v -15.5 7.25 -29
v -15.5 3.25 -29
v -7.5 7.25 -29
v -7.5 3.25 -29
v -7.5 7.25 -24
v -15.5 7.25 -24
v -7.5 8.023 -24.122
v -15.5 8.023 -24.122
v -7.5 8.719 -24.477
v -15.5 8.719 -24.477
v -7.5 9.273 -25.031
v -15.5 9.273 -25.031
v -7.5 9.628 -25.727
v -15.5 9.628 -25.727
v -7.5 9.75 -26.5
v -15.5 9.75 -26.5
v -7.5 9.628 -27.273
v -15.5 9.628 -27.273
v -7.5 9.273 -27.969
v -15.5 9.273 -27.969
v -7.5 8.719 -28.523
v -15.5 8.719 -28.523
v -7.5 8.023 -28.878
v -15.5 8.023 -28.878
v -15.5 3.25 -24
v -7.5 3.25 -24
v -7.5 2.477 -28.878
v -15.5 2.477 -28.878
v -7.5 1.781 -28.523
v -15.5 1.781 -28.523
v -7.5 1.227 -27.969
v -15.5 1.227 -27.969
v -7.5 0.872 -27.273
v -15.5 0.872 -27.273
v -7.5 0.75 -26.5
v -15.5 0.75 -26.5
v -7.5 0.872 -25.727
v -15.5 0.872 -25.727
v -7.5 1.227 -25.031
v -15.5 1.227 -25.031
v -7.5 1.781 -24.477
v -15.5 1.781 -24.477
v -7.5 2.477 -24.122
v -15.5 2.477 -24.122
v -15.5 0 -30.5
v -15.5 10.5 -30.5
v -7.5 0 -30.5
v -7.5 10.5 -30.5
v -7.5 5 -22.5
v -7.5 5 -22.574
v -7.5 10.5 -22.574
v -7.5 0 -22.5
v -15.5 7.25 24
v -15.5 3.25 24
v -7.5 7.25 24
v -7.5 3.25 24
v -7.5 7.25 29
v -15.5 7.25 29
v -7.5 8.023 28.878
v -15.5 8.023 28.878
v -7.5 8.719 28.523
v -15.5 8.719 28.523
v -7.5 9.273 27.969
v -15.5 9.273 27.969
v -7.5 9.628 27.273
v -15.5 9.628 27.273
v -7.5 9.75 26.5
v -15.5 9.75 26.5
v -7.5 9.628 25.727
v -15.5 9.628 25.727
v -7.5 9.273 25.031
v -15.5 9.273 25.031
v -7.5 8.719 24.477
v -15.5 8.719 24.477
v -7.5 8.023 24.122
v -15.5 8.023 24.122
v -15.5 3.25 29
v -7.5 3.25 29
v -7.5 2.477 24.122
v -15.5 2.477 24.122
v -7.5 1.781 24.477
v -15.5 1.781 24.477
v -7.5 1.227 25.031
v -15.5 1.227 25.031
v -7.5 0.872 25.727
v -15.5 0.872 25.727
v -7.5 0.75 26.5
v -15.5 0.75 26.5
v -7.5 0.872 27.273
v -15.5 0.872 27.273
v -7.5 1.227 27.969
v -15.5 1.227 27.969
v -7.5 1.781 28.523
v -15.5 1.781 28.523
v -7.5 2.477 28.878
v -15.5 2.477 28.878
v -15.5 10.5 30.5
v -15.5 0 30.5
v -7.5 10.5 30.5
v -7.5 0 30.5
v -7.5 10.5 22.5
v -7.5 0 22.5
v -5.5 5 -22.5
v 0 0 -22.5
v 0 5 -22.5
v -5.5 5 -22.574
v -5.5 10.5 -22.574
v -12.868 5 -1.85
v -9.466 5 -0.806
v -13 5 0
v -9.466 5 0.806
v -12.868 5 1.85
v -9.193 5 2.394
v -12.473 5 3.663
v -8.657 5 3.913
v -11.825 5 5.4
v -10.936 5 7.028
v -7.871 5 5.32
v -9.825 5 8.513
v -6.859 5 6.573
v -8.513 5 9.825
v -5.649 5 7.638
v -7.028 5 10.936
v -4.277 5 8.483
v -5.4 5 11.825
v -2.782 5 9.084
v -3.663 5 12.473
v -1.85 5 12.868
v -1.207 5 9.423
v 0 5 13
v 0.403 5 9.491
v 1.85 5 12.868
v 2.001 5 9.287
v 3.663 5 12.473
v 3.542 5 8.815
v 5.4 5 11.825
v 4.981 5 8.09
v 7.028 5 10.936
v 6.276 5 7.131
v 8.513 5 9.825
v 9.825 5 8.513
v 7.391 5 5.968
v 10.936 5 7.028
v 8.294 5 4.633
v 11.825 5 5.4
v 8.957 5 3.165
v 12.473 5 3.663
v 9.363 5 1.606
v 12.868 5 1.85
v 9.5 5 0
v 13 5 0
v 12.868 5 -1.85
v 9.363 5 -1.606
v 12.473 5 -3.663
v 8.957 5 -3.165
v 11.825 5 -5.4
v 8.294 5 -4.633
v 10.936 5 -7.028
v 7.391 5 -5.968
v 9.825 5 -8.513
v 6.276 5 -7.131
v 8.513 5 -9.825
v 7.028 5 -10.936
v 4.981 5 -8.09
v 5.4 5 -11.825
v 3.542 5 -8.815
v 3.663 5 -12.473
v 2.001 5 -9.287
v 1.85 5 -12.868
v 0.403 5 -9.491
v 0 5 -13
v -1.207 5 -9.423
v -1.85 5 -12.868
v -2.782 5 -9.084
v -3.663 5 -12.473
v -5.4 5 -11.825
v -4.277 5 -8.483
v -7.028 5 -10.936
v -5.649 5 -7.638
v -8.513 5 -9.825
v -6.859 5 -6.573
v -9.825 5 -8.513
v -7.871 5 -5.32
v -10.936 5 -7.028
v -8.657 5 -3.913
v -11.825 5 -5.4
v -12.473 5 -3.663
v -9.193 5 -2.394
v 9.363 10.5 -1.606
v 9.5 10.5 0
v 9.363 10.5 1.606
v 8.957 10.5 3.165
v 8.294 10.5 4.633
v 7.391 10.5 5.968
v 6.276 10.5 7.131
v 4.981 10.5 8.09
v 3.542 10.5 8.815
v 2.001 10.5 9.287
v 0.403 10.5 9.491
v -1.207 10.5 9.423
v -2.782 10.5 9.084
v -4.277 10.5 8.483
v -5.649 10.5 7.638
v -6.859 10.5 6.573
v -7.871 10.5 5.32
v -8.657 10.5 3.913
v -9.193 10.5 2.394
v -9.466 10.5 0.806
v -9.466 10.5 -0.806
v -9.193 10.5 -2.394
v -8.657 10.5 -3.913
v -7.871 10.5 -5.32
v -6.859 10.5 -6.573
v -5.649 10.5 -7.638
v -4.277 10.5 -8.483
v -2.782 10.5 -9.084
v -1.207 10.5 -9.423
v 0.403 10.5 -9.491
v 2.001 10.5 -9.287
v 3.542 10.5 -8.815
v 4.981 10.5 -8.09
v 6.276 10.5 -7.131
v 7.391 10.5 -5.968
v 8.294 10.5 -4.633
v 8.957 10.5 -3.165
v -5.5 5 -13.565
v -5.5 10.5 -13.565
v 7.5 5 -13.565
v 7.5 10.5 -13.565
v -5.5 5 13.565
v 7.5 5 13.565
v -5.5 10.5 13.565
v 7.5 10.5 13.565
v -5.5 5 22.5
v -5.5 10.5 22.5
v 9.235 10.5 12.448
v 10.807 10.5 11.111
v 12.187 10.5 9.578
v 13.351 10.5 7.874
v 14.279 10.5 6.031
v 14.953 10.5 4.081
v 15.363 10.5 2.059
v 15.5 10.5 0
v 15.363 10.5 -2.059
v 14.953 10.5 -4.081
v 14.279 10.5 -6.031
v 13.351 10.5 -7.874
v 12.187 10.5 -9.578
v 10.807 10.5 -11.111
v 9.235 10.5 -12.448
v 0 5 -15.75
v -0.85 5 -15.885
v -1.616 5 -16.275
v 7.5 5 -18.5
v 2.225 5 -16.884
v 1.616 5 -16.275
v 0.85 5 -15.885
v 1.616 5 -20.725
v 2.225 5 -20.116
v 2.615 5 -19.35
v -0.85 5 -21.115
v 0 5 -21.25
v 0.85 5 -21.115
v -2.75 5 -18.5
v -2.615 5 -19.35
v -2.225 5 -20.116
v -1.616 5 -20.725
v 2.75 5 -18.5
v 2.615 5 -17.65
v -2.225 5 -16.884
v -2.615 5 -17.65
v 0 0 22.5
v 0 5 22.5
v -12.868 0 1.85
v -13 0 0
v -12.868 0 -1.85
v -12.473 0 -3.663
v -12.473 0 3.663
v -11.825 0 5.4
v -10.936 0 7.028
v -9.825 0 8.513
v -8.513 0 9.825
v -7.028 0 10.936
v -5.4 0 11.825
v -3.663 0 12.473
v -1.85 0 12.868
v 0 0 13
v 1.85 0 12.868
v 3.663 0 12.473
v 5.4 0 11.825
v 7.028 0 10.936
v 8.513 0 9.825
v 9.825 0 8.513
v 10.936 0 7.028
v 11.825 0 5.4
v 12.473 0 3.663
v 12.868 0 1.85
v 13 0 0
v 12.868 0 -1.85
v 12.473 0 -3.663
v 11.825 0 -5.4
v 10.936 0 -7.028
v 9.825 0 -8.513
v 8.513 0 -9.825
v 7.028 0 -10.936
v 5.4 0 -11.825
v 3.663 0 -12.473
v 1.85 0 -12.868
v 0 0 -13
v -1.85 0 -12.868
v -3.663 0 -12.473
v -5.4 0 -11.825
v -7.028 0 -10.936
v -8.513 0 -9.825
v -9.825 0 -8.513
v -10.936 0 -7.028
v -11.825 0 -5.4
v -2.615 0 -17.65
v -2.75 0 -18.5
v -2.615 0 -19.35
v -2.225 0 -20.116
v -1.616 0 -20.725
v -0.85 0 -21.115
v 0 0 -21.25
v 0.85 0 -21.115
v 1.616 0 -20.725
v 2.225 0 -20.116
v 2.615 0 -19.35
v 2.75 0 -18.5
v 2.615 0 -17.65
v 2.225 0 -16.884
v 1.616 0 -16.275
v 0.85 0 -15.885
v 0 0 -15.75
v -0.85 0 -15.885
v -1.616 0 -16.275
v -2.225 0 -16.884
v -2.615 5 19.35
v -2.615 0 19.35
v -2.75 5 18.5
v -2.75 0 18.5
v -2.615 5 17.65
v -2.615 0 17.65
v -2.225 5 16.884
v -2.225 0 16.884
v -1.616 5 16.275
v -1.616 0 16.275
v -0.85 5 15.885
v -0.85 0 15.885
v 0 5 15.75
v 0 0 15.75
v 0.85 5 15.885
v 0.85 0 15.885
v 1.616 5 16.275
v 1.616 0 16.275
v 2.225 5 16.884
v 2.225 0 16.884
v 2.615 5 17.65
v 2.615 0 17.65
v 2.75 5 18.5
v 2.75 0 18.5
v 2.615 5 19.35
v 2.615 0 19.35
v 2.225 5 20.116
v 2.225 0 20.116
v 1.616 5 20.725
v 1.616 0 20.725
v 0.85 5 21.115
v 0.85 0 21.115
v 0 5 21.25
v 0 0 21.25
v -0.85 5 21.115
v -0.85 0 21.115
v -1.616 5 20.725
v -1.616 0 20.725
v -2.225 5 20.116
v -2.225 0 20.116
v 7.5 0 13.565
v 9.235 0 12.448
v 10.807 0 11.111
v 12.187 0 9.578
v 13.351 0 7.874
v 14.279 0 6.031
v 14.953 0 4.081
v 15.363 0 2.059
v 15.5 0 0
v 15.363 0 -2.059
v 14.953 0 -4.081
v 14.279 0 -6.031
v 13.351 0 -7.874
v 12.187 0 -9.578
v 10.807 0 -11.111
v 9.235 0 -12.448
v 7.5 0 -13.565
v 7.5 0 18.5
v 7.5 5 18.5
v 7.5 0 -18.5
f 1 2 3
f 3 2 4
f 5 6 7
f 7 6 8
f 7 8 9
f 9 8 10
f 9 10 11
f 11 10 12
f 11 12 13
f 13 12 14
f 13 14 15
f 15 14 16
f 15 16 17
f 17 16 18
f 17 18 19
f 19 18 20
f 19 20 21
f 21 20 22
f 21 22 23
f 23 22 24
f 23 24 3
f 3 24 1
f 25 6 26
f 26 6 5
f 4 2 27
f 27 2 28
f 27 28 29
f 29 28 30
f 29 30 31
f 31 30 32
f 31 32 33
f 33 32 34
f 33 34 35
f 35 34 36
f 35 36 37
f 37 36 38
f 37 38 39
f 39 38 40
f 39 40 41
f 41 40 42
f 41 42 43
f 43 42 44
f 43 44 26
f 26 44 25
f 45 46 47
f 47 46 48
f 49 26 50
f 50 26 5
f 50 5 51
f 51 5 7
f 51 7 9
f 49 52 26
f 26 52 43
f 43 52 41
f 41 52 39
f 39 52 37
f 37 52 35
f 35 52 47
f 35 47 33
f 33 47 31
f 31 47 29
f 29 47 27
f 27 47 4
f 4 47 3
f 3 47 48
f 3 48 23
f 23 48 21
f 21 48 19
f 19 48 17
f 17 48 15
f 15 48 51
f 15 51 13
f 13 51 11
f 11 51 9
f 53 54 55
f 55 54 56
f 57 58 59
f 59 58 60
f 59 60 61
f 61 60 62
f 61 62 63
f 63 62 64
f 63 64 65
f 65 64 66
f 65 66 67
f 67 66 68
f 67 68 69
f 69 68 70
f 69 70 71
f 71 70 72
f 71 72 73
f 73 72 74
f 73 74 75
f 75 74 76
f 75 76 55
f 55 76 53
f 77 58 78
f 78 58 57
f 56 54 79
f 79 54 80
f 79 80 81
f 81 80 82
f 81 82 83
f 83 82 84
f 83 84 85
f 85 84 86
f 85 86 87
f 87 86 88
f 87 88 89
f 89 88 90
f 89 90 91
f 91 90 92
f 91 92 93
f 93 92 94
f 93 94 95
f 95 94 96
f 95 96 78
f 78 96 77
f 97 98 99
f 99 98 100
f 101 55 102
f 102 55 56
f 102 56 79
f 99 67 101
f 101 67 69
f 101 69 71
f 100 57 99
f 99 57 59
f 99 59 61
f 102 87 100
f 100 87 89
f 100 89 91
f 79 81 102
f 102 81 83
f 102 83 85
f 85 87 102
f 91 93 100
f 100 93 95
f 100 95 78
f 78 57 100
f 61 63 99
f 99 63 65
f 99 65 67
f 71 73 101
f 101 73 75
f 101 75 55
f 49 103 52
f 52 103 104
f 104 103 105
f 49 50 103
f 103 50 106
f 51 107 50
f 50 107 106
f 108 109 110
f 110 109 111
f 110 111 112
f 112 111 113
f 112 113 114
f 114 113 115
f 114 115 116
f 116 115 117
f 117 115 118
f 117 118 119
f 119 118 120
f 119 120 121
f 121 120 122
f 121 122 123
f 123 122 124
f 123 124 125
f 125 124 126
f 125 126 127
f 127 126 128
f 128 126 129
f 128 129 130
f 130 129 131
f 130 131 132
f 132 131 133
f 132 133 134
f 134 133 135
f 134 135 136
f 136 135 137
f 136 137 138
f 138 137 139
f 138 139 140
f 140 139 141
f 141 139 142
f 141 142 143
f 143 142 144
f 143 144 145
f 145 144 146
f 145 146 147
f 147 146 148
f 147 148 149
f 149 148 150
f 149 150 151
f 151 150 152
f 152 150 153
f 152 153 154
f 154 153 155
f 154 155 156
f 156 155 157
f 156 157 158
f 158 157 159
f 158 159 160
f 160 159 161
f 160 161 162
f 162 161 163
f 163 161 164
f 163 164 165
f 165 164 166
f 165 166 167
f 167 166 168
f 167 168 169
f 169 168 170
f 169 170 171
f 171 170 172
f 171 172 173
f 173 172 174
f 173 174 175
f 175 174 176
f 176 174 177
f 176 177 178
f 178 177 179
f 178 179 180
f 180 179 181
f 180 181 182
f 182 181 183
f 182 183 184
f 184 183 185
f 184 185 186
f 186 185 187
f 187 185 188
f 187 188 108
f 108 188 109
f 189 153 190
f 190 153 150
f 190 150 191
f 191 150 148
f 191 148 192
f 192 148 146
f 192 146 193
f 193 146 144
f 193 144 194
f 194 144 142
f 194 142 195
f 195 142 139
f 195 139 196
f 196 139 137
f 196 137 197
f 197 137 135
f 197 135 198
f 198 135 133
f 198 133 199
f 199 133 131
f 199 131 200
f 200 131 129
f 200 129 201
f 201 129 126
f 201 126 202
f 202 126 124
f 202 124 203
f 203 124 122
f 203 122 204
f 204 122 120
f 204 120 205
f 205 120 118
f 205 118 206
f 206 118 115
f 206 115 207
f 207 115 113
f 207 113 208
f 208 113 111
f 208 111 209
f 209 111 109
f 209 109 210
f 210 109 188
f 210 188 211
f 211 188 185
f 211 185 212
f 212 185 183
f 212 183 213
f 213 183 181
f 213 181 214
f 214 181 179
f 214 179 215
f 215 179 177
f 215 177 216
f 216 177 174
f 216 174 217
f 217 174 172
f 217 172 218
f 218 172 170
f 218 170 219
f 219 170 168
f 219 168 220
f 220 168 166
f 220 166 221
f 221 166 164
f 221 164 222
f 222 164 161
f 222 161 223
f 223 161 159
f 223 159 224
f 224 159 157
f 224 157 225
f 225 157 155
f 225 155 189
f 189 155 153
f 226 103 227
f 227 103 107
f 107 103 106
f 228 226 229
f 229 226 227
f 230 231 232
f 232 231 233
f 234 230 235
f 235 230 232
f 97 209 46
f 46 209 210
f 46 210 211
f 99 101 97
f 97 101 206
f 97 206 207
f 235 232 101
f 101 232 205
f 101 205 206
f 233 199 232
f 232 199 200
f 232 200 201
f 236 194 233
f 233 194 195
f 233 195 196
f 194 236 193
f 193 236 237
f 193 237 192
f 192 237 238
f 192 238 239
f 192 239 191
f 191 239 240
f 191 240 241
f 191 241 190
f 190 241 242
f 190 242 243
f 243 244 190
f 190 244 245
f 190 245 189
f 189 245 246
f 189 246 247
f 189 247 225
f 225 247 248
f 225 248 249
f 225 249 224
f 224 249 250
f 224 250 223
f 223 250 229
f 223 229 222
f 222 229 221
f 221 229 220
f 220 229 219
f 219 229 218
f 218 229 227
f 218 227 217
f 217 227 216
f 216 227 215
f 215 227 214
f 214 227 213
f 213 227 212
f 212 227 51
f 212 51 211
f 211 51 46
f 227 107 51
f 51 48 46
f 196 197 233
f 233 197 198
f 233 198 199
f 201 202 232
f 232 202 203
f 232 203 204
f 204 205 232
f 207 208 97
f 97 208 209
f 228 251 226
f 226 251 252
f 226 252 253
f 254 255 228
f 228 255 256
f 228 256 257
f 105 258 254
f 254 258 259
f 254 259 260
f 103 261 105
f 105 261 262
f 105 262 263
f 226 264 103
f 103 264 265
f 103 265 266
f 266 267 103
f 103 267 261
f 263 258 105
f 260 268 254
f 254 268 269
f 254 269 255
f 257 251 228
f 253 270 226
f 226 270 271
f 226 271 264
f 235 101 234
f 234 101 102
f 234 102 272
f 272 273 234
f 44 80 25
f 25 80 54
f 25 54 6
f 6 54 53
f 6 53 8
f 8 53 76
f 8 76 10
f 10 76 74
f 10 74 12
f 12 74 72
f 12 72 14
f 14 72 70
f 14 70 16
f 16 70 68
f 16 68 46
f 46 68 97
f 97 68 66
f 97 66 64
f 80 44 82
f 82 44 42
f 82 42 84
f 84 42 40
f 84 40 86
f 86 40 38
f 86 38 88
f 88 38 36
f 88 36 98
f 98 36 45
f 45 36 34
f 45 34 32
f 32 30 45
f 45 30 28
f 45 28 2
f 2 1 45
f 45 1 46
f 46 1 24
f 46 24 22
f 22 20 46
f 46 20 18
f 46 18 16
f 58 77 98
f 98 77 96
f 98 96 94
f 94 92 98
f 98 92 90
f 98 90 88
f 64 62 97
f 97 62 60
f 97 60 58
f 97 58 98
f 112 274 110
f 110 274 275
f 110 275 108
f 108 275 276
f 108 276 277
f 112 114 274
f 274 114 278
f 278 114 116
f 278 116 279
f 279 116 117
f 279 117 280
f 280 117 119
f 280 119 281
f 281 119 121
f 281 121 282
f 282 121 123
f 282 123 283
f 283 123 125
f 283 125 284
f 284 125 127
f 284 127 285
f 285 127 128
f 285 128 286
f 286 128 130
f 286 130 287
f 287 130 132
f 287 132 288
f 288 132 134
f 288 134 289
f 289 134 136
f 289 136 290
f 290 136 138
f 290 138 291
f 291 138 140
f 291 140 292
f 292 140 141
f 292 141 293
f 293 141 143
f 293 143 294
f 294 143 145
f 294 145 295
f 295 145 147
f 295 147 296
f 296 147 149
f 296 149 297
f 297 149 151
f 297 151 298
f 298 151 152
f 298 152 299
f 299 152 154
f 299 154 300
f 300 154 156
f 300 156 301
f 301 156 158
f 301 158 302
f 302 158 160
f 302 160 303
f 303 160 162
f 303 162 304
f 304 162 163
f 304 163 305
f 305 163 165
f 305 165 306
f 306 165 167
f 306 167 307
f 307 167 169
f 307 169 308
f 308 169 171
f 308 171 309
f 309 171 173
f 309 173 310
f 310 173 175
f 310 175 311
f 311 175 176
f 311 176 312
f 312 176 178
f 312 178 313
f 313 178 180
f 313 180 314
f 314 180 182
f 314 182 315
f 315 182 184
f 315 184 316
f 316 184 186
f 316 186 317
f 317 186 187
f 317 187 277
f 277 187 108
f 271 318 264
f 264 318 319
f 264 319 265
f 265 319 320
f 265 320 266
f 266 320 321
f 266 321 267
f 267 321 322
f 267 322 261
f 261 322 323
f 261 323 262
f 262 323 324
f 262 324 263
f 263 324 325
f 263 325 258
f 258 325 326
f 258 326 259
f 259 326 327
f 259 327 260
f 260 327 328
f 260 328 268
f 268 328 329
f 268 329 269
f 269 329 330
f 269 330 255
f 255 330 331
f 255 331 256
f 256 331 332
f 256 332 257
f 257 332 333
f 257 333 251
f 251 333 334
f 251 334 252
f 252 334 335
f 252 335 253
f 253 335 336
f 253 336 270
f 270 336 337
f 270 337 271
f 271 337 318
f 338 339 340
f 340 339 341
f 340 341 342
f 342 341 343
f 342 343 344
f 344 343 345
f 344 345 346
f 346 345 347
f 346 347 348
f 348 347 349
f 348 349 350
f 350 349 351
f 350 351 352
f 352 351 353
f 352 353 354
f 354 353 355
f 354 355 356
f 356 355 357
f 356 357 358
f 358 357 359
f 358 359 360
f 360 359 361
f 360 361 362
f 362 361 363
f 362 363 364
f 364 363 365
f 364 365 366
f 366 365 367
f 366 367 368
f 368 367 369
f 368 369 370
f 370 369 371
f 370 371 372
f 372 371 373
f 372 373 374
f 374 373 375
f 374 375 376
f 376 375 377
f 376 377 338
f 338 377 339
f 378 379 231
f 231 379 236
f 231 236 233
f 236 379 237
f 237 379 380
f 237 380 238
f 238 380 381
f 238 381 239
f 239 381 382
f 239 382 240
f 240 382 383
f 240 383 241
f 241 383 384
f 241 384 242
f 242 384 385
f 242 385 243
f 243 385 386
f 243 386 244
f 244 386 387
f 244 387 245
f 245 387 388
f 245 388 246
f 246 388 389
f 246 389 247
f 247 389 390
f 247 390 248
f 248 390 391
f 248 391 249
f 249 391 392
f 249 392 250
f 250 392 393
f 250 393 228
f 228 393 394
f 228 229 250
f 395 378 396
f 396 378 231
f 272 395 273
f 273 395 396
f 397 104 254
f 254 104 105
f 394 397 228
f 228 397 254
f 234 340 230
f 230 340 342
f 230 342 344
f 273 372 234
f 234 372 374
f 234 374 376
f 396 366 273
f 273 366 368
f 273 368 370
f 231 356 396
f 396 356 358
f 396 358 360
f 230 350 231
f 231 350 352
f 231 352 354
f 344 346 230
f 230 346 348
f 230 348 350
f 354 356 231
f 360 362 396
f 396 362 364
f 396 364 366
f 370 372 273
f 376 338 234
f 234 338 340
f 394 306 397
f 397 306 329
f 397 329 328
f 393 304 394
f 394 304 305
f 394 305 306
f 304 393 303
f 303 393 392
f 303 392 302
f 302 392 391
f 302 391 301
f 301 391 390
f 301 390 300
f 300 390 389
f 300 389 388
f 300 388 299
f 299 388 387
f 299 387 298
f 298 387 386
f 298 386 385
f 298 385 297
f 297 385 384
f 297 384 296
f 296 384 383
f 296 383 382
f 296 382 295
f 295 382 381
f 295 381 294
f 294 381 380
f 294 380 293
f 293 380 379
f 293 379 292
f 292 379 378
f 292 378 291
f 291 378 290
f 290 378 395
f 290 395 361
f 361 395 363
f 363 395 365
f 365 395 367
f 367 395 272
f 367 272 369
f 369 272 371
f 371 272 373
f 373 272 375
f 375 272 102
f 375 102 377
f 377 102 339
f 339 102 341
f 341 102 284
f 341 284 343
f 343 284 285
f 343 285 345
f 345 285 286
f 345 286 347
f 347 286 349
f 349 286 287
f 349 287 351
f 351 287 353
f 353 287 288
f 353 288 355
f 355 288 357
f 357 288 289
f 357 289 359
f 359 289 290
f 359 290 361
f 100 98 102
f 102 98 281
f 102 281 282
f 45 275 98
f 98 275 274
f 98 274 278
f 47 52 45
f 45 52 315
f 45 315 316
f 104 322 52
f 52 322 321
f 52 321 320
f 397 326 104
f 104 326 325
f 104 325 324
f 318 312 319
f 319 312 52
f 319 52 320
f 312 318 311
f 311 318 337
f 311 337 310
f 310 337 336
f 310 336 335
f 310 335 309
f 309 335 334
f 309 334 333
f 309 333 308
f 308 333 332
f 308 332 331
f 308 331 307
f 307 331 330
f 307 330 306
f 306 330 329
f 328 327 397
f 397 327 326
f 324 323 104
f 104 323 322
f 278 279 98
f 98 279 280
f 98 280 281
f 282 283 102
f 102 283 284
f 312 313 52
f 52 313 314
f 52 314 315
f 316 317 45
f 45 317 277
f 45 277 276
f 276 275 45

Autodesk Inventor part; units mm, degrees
ref_plane "YZ Plane" through (0, 0, 0) normal (1, 0, 0) x (0, 1, 0)
ref_plane "XZ Plane" through (0, 0, 0) normal (0, 1, 0) x (-1, 0, 0)
ref_plane "XY Plane" through (0, 0, 0) normal (0, 0, 1) x (1, 0, 0)
sketch "Sketch1" plane through (0, 0, 0) normal (0, 1, 0) x (-1, 0, 0)
  circle A0 centre (0, 0) radius 13
  circle A1 centre (0, 0) radius 15.5
  circle A2 centre (0, 18.5) radius 2.75
  circle A3 centre (0, -18.5) radius 2.75
  line L0 (0, 18.5) -> (0, -18.5)
  line L1 (7.5, 22.5) -> (-7.5, 22.5)
  line L2 (-7.5, 22.5) -> (-7.5, 13)
  line L3 (-7.5, 13) -> (7.5, 13)
  line L4 (7.5, 13) -> (7.5, 22.5)
  line L5 (0, 22.5) -> (7.5, 18.5)
  line L6 (7.5, 18.5) -> (7.5, 13.5647)
  line L7 (0, 22.5) -> (-7.5, 18.5)
  line L8 (-7.5, 18.5) -> (-7.5, 13.5647)
  line L9 (13, 0) -> (-13, 0) construction
  circle A4 centre (0, -18.5) radius 2.75
  line L10 (7.5, -22.5) -> (-7.5, -22.5)
  line L11 (-7.5, -22.5) -> (-7.5, -13)
  line L12 (7.5, -13) -> (7.5, -22.5)
  line L13 (0, -22.5) -> (7.5, -18.5)
  line L14 (0, -22.5) -> (-7.5, -18.5)
  point P0 (-7.5, -13.5647)
  point P1 (7.5, -13.5647)
  dimension "d0" = 26
  dimension "d1" = 2.5
  dimension "d2" = 5.5
  dimension "d3" = 5.5
  dimension "d4" = 37
  dimension "d5" = 15
  dimension "d6" = 4
extrude "Extrusion1" add sketch "Sketch1" along normal blind 5 contours A0 L3 L4 A1 L0 | L3 L2 A1 L0 | A0 L0 A1 L2 L3 | L0 A1 L4 L3 | A1 L2 L7 L5 L4 | A1 L12 L13 L14 L11
sketch "Sketch2" plane through (0, 0, 0) normal (0, -1, 0) x (1, 0, 0)
  line L0 (7.5, -18.5) -> (0, -22.5) projected
  line L1 (0, -22.5) -> (-15.5, -22.5)
  line L2 (-15.5, -22.5) -> (-15.5, 22.5)
  line L3 (-15.5, 22.5) -> (0, 22.5)
  arc A0 (-7.5, 13.5647) -> (-7.5, -13.5647) centre (0, 0) ccw projected
  line L4 (-7.5, 13.5647) -> (-7.5, 18.5) projected
  line L5 (0, 22.5) -> (-7.5, 18.5)
  line L6 (-7.5, 18.5) -> (-7.5, 13.5647)
  arc A1 (-7.5, 13.5647) -> (-15.5, 0) centre (0, 0) ccw
  line L7 (0, -22.5) -> (-7.5, -18.5) projected
  line L8 (0, -22.5) -> (-7.5, -18.5)
  line L9 (-7.5, -18.5) -> (-7.5, -13.5647)
  line L10 (-7.5, -18.5) -> (-7.5, -13.5647) projected
  arc A2 (-7.5, 13.5647) -> (-7.5, -13.5647) centre (0, 0) ccw
  point P0 (-15.5, 0)
extrude "Extrusion2" add sketch "Sketch2" against normal up to surface (5 mm away)
sketch "Sketch4" plane through (0, 5, 0) normal (0, 1, 0) x (1, 0, 0)
  arc A0 (7.5, -13.5647) -> (7.5, 13.5647) centre (0, 0) ccw projected
  arc A1 (7.5, -13.5647) -> (7.5, 13.5647) centre (0, 0) ccw
  line L0 (7.5, 13.5647) -> (7.5, 18.5) projected
  line L1 (7.5, 13.5647) -> (-5.5, 13.5647)
  line L2 (-5.5, 13.5647) -> (-5.5, 22.5742)
  line L3 (-5.5, 22.5742) -> (-15.5, 22.5742)
  line L4 (-15.5, -22.5) -> (-15.5, 22.5) projected
  line L5 (-15.5, 22.5742) -> (-15.5, -22.5)
  line L6 (0, -22.5) -> (-15.5, -22.5) projected
  line L7 (-15.5, -22.5) -> (-5.5, -22.5)
  line L8 (-5.5, -22.5) -> (-5.5, -13.5647)
  line L9 (-5.5, -13.5647) -> (7.5, -13.5647)
  line L10 (7.5, -18.5) -> (7.5, -13.5647) projected
  circle A2 centre (0, 0) radius 9.5
  point P0 (-15.5, -30.5)
  point P1 (-15.5, 30.5)
  point P2 (-10, -22.5)
  point P3 (-15.5, -22.5)
  point P4 (-5.5, -22.5)
  point P5 (-5.5, -22.5)
  dimension "d21" = 13
  dimension "d22" = 13
  dimension "d23" = 19
extrude "Extrusion4" add sketch "Sketch4" along normal blind 5.5
sketch "Sketch5" plane through (-15.5, 0, -22.5) normal (-1, 0, 0) x (0, 0, 1)
  line L0 (45, 0) -> (45, 5) projected
  line L1 (45, 0) -> (53, 0)
  line L2 (53, 0) -> (53, 10.5)
  line L3 (53, 10.5) -> (45, 10.5)
  line L4 (45, 10.5) -> (45, 0)
  line L5 (4, 0) -> (0, 0) projected
  line L6 (0, 0) -> (-8, 0)
  line L7 (-8, 0) -> (-8, 10.5)
  line L8 (-8, 10.5) -> (0, 10.5)
  line L9 (0, 10.5) -> (0, 0)
  line L10 (-0.0742, 10.5) -> (45, 10.5) projected
  line L11 (-4, 3.25) -> (-4, 7.25) construction
  line L12 (-1.5, 3.25) -> (-1.5, 7.25)
  line L13 (-6.5, 7.25) -> (-6.5, 3.25)
  arc A0 (-6.5, 3.25) -> (-1.5, 3.25) centre (-4, 3.25) ccw
  arc A1 (-1.5, 7.25) -> (-6.5, 7.25) centre (-4, 7.25) ccw
  line L14 (49, 3.25) -> (49, 7.25) construction
  line L15 (51.5, 3.25) -> (51.5, 7.25)
  line L16 (46.5, 7.25) -> (46.5, 3.25)
  arc A2 (46.5, 3.25) -> (51.5, 3.25) centre (49, 3.25) ccw
  arc A3 (51.5, 7.25) -> (46.5, 7.25) centre (49, 7.25) ccw
  point P0 (22.5, 0)
  point P1 (49, 10.5)
  point P2 (0, 5.25)
  point P3 (-4, 5.25)
  point P4 (-4, 0)
  point P5 (-6.5, 5.25)
  point P6 (49, 5.25)
  point P7 (46.5, 5.25)
  point P8 (45, 5.25)
  dimension "d26" = 8
  dimension "d27" = 8
  dimension "d28" = 0
  dimension "d29" = 4
  dimension "d30" = 5
  dimension "d31" = 4
  dimension "d32" = 5
extrude "Extrusion5" add sketch "Sketch5" against normal blind 8
properties part number "clock_part1"
